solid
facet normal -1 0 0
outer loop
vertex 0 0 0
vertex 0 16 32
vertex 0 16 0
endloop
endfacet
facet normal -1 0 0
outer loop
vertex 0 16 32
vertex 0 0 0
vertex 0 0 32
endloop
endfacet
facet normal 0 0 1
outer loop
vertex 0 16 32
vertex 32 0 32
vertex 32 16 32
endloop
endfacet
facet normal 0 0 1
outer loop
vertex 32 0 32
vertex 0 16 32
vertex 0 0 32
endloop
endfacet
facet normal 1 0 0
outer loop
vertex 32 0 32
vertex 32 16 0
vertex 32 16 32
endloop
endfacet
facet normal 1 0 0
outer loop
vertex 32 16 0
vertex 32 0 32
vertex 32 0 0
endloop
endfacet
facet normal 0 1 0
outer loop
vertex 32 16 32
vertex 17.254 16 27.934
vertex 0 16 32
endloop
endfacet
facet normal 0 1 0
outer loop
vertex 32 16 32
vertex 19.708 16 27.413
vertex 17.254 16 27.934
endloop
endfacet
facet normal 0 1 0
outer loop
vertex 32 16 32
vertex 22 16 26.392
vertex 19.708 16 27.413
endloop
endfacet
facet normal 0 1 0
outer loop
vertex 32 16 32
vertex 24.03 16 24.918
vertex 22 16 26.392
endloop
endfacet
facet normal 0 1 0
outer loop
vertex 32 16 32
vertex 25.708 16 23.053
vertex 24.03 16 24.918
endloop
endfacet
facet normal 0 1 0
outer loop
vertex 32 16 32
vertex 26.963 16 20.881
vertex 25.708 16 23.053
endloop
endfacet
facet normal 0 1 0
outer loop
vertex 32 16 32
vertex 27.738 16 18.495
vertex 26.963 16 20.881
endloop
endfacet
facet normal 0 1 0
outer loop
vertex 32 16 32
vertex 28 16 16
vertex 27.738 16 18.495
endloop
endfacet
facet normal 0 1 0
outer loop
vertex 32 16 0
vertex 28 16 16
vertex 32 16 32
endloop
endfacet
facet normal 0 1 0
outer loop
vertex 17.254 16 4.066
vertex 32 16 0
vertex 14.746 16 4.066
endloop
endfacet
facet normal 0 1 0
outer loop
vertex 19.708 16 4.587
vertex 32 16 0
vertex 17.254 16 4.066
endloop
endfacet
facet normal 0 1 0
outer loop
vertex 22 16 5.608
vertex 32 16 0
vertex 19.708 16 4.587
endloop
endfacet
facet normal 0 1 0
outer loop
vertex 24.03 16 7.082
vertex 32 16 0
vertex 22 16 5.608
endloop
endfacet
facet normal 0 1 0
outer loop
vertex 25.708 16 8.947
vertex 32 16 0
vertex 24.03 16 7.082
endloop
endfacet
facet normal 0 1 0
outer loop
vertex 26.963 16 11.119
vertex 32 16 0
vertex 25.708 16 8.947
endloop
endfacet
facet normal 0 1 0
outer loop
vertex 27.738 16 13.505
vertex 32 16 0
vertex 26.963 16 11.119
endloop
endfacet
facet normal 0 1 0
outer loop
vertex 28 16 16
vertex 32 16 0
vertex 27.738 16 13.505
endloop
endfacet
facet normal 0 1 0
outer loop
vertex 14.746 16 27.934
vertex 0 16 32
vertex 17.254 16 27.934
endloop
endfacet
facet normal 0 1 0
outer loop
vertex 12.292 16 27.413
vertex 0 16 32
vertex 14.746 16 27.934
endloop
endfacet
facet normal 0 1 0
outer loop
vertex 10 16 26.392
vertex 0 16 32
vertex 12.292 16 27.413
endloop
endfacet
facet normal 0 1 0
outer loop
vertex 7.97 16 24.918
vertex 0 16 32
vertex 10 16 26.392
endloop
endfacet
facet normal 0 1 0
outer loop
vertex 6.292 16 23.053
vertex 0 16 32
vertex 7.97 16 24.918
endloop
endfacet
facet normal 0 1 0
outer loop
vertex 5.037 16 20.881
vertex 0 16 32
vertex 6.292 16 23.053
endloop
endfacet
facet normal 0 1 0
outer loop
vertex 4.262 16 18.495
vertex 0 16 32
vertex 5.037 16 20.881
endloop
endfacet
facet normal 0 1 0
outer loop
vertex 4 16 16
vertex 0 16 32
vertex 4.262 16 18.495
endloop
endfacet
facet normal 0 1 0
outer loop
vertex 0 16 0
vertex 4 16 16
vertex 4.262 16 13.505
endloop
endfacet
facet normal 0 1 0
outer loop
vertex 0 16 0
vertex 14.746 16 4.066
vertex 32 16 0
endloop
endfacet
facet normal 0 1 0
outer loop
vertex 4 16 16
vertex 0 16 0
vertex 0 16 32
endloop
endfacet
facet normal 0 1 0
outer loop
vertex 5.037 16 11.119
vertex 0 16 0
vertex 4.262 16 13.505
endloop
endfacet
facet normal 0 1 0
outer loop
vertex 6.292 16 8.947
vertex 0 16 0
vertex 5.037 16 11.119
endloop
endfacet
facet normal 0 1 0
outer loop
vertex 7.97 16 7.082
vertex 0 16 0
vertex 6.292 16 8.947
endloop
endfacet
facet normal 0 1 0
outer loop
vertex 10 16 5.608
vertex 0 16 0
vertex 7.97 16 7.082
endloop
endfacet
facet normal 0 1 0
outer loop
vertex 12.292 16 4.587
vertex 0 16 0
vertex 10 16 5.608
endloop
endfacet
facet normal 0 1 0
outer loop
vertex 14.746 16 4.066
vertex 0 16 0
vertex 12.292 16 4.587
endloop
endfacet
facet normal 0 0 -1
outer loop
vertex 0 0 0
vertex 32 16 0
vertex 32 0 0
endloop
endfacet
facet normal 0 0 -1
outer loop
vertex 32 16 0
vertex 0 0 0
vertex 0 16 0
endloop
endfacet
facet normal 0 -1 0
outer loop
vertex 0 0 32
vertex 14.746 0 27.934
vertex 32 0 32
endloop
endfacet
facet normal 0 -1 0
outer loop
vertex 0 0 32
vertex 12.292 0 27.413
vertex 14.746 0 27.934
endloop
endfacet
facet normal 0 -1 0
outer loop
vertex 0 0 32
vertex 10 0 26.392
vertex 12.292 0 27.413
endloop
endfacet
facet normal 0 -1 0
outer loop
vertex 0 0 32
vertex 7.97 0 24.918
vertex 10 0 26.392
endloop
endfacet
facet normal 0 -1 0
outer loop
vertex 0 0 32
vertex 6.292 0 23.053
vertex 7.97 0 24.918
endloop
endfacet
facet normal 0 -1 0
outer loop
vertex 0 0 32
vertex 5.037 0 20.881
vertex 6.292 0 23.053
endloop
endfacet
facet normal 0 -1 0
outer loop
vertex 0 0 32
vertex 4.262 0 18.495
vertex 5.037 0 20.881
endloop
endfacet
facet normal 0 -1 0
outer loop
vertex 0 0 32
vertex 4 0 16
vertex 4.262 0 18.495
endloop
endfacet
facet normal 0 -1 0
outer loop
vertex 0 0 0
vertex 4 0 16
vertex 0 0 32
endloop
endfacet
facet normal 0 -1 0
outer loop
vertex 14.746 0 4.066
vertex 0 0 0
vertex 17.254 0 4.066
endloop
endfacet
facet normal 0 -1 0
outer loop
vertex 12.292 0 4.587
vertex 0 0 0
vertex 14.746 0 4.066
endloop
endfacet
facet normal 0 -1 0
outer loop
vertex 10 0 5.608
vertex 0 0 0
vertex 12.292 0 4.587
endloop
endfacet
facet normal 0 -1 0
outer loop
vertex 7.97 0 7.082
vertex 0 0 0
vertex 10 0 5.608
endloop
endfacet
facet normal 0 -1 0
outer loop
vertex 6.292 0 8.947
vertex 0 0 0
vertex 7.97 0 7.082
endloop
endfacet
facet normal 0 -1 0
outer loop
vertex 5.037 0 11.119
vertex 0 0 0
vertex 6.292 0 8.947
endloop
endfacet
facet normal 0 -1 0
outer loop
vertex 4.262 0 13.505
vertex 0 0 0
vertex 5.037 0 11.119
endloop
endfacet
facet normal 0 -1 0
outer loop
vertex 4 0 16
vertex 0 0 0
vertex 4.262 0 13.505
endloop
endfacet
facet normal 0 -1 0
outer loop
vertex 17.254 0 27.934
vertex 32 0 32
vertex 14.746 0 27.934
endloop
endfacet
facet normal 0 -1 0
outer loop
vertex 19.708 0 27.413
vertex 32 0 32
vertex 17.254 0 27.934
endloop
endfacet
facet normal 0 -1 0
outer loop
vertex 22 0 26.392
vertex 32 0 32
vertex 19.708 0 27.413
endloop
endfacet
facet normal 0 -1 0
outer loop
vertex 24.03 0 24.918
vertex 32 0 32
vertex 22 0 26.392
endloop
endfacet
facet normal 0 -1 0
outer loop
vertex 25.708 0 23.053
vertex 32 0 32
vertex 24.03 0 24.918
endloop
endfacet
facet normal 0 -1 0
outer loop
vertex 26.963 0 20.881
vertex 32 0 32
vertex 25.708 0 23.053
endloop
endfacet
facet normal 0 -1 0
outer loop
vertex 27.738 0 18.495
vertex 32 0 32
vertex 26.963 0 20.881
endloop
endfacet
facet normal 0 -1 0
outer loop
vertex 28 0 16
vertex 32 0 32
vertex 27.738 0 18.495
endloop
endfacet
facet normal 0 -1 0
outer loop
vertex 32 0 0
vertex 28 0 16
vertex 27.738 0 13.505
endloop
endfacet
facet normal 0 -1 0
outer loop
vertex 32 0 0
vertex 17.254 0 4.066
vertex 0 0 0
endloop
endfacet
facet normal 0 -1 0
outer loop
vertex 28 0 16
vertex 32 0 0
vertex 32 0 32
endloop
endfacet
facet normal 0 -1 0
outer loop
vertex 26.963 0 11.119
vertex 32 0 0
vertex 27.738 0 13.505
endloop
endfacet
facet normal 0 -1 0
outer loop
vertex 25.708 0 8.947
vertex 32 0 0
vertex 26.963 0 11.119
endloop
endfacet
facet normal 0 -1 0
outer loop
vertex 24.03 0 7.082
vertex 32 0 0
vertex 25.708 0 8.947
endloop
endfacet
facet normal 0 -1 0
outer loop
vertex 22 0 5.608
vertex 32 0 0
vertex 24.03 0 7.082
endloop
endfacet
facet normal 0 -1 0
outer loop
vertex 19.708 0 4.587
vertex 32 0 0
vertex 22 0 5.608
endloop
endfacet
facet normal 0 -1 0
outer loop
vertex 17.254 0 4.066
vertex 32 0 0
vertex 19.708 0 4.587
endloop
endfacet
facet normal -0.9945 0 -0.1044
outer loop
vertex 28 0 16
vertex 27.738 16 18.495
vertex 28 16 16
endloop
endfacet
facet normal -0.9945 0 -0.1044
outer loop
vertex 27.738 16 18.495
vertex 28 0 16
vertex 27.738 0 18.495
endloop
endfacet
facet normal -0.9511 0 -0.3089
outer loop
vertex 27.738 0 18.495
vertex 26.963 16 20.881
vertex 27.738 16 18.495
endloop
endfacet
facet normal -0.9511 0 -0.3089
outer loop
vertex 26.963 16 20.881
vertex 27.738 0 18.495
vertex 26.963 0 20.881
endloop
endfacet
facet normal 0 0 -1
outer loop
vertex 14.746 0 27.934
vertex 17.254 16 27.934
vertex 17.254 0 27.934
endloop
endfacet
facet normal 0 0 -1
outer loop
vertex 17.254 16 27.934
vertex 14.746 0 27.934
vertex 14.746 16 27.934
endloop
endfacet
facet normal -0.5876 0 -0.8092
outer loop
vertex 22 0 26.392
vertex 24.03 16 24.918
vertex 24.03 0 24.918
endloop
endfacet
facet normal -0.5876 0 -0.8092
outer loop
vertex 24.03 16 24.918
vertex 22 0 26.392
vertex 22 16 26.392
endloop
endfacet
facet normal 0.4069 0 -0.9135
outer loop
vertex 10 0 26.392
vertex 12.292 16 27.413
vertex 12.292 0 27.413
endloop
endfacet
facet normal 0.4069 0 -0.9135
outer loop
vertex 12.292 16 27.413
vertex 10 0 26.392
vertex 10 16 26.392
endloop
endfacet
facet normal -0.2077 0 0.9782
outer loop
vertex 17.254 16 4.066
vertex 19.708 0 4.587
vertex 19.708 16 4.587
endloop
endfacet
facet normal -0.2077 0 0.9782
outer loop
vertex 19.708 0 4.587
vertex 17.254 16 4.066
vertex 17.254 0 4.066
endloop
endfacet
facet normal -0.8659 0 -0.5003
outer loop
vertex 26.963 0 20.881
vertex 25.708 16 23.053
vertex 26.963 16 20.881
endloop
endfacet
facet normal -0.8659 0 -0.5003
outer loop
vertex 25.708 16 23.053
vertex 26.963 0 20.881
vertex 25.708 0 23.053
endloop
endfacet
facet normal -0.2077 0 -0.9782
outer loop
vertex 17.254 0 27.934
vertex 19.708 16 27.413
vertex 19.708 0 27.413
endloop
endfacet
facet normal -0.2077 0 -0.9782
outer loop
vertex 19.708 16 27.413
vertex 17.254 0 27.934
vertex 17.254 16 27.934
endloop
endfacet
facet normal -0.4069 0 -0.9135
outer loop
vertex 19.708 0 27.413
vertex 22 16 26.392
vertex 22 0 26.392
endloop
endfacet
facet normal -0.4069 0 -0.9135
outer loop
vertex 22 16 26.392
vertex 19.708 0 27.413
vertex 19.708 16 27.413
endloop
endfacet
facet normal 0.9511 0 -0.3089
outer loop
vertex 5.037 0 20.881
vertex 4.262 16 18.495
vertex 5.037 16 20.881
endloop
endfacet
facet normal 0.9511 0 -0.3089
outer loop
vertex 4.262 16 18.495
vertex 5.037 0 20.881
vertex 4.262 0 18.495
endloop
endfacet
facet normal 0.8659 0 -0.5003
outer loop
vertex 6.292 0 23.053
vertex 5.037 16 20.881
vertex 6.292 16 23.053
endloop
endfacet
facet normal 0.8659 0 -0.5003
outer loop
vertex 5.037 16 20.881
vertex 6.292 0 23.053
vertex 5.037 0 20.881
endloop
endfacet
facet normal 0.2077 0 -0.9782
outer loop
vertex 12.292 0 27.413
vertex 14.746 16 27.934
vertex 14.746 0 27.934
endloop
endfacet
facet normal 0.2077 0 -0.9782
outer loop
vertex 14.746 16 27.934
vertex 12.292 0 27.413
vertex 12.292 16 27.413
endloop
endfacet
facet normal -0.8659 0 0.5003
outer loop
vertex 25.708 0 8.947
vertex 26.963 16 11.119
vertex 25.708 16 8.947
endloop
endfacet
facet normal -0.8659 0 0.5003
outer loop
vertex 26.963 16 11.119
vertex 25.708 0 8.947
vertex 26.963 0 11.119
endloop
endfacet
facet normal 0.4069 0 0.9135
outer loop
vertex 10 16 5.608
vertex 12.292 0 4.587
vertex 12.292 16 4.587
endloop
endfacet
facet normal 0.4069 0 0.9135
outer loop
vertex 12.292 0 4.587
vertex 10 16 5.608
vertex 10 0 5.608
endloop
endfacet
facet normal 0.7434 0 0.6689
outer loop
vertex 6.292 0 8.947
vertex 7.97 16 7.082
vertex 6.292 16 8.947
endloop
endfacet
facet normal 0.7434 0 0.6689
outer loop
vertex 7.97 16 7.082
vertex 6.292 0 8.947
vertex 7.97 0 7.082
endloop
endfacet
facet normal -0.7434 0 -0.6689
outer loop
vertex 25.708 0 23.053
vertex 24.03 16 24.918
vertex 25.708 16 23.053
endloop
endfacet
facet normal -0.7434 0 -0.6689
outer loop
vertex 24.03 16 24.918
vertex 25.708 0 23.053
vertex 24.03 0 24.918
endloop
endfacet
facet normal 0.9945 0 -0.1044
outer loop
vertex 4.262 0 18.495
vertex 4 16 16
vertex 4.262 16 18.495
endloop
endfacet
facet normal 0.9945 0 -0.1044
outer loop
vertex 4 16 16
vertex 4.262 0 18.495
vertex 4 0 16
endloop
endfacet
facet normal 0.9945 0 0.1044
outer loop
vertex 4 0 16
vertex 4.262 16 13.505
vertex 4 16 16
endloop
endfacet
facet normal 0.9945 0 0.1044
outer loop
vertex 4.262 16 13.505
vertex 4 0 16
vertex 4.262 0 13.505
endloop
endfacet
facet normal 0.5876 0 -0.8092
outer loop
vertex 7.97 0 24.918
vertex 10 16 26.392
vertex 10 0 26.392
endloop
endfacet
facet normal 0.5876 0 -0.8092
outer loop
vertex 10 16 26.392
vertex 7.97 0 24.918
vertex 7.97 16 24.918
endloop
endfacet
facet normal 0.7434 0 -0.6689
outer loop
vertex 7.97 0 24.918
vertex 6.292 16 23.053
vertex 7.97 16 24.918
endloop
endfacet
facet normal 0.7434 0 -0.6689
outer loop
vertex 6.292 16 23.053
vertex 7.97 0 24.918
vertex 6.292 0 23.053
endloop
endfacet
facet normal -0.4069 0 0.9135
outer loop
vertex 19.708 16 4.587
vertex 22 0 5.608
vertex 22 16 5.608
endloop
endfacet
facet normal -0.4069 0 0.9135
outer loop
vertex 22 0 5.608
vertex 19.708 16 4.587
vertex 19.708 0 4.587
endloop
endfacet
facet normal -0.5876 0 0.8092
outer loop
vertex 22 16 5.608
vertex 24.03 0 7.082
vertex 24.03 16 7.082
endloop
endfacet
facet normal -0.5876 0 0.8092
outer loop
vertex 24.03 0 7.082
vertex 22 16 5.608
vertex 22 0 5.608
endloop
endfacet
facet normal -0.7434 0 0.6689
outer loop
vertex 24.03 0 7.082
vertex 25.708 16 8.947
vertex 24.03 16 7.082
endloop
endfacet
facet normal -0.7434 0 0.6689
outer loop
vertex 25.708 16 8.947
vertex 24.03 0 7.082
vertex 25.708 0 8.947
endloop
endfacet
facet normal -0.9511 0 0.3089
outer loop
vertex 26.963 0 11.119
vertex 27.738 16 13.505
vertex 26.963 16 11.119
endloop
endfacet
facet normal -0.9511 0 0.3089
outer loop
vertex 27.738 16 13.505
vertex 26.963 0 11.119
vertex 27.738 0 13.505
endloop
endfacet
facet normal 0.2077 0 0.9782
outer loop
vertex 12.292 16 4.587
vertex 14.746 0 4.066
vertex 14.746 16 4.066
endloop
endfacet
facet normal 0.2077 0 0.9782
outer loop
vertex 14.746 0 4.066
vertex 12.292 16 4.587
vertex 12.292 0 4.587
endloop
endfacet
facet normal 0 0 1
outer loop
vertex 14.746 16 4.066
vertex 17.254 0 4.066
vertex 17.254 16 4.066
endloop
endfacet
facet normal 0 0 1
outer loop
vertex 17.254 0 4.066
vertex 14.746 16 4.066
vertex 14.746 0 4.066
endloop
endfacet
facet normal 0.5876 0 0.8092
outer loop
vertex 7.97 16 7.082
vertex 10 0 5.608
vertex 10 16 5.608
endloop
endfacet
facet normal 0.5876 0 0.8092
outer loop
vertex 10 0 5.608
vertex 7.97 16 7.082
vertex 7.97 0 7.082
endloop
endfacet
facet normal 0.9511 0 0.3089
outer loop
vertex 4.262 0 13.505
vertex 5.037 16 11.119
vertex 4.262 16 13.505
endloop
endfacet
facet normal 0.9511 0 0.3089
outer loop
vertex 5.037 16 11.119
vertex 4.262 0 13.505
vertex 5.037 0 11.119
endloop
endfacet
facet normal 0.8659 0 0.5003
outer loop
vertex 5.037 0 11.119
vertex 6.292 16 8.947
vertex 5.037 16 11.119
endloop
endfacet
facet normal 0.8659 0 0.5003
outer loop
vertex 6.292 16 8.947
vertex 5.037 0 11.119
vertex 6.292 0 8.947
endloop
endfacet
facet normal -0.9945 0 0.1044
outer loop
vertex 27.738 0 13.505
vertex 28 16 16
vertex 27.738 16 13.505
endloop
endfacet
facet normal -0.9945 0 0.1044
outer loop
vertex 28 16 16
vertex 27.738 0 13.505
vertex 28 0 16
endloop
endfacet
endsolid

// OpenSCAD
// size: 외경 radius: 구멍반지름
module diagnoseDegree360(size = [32, 32, 16], radius = 8) {
	difference() {
		cube(size);
		translate([size[0] / 2, size[1] / 2 + radius + 1, size[2] / 2])
		rotate([90, 0, 0])
		cylinder(size[2] + 2, radius, radius);
	}
		//translate([size[0] / 2, size[1] / 2 + radius + 1, size[2] / 2])		rotate([90, 0, 0])		cylinder(size[1] + 2, radius, radius);
}
diagnoseDegree360([32, 16, 32], 12);
